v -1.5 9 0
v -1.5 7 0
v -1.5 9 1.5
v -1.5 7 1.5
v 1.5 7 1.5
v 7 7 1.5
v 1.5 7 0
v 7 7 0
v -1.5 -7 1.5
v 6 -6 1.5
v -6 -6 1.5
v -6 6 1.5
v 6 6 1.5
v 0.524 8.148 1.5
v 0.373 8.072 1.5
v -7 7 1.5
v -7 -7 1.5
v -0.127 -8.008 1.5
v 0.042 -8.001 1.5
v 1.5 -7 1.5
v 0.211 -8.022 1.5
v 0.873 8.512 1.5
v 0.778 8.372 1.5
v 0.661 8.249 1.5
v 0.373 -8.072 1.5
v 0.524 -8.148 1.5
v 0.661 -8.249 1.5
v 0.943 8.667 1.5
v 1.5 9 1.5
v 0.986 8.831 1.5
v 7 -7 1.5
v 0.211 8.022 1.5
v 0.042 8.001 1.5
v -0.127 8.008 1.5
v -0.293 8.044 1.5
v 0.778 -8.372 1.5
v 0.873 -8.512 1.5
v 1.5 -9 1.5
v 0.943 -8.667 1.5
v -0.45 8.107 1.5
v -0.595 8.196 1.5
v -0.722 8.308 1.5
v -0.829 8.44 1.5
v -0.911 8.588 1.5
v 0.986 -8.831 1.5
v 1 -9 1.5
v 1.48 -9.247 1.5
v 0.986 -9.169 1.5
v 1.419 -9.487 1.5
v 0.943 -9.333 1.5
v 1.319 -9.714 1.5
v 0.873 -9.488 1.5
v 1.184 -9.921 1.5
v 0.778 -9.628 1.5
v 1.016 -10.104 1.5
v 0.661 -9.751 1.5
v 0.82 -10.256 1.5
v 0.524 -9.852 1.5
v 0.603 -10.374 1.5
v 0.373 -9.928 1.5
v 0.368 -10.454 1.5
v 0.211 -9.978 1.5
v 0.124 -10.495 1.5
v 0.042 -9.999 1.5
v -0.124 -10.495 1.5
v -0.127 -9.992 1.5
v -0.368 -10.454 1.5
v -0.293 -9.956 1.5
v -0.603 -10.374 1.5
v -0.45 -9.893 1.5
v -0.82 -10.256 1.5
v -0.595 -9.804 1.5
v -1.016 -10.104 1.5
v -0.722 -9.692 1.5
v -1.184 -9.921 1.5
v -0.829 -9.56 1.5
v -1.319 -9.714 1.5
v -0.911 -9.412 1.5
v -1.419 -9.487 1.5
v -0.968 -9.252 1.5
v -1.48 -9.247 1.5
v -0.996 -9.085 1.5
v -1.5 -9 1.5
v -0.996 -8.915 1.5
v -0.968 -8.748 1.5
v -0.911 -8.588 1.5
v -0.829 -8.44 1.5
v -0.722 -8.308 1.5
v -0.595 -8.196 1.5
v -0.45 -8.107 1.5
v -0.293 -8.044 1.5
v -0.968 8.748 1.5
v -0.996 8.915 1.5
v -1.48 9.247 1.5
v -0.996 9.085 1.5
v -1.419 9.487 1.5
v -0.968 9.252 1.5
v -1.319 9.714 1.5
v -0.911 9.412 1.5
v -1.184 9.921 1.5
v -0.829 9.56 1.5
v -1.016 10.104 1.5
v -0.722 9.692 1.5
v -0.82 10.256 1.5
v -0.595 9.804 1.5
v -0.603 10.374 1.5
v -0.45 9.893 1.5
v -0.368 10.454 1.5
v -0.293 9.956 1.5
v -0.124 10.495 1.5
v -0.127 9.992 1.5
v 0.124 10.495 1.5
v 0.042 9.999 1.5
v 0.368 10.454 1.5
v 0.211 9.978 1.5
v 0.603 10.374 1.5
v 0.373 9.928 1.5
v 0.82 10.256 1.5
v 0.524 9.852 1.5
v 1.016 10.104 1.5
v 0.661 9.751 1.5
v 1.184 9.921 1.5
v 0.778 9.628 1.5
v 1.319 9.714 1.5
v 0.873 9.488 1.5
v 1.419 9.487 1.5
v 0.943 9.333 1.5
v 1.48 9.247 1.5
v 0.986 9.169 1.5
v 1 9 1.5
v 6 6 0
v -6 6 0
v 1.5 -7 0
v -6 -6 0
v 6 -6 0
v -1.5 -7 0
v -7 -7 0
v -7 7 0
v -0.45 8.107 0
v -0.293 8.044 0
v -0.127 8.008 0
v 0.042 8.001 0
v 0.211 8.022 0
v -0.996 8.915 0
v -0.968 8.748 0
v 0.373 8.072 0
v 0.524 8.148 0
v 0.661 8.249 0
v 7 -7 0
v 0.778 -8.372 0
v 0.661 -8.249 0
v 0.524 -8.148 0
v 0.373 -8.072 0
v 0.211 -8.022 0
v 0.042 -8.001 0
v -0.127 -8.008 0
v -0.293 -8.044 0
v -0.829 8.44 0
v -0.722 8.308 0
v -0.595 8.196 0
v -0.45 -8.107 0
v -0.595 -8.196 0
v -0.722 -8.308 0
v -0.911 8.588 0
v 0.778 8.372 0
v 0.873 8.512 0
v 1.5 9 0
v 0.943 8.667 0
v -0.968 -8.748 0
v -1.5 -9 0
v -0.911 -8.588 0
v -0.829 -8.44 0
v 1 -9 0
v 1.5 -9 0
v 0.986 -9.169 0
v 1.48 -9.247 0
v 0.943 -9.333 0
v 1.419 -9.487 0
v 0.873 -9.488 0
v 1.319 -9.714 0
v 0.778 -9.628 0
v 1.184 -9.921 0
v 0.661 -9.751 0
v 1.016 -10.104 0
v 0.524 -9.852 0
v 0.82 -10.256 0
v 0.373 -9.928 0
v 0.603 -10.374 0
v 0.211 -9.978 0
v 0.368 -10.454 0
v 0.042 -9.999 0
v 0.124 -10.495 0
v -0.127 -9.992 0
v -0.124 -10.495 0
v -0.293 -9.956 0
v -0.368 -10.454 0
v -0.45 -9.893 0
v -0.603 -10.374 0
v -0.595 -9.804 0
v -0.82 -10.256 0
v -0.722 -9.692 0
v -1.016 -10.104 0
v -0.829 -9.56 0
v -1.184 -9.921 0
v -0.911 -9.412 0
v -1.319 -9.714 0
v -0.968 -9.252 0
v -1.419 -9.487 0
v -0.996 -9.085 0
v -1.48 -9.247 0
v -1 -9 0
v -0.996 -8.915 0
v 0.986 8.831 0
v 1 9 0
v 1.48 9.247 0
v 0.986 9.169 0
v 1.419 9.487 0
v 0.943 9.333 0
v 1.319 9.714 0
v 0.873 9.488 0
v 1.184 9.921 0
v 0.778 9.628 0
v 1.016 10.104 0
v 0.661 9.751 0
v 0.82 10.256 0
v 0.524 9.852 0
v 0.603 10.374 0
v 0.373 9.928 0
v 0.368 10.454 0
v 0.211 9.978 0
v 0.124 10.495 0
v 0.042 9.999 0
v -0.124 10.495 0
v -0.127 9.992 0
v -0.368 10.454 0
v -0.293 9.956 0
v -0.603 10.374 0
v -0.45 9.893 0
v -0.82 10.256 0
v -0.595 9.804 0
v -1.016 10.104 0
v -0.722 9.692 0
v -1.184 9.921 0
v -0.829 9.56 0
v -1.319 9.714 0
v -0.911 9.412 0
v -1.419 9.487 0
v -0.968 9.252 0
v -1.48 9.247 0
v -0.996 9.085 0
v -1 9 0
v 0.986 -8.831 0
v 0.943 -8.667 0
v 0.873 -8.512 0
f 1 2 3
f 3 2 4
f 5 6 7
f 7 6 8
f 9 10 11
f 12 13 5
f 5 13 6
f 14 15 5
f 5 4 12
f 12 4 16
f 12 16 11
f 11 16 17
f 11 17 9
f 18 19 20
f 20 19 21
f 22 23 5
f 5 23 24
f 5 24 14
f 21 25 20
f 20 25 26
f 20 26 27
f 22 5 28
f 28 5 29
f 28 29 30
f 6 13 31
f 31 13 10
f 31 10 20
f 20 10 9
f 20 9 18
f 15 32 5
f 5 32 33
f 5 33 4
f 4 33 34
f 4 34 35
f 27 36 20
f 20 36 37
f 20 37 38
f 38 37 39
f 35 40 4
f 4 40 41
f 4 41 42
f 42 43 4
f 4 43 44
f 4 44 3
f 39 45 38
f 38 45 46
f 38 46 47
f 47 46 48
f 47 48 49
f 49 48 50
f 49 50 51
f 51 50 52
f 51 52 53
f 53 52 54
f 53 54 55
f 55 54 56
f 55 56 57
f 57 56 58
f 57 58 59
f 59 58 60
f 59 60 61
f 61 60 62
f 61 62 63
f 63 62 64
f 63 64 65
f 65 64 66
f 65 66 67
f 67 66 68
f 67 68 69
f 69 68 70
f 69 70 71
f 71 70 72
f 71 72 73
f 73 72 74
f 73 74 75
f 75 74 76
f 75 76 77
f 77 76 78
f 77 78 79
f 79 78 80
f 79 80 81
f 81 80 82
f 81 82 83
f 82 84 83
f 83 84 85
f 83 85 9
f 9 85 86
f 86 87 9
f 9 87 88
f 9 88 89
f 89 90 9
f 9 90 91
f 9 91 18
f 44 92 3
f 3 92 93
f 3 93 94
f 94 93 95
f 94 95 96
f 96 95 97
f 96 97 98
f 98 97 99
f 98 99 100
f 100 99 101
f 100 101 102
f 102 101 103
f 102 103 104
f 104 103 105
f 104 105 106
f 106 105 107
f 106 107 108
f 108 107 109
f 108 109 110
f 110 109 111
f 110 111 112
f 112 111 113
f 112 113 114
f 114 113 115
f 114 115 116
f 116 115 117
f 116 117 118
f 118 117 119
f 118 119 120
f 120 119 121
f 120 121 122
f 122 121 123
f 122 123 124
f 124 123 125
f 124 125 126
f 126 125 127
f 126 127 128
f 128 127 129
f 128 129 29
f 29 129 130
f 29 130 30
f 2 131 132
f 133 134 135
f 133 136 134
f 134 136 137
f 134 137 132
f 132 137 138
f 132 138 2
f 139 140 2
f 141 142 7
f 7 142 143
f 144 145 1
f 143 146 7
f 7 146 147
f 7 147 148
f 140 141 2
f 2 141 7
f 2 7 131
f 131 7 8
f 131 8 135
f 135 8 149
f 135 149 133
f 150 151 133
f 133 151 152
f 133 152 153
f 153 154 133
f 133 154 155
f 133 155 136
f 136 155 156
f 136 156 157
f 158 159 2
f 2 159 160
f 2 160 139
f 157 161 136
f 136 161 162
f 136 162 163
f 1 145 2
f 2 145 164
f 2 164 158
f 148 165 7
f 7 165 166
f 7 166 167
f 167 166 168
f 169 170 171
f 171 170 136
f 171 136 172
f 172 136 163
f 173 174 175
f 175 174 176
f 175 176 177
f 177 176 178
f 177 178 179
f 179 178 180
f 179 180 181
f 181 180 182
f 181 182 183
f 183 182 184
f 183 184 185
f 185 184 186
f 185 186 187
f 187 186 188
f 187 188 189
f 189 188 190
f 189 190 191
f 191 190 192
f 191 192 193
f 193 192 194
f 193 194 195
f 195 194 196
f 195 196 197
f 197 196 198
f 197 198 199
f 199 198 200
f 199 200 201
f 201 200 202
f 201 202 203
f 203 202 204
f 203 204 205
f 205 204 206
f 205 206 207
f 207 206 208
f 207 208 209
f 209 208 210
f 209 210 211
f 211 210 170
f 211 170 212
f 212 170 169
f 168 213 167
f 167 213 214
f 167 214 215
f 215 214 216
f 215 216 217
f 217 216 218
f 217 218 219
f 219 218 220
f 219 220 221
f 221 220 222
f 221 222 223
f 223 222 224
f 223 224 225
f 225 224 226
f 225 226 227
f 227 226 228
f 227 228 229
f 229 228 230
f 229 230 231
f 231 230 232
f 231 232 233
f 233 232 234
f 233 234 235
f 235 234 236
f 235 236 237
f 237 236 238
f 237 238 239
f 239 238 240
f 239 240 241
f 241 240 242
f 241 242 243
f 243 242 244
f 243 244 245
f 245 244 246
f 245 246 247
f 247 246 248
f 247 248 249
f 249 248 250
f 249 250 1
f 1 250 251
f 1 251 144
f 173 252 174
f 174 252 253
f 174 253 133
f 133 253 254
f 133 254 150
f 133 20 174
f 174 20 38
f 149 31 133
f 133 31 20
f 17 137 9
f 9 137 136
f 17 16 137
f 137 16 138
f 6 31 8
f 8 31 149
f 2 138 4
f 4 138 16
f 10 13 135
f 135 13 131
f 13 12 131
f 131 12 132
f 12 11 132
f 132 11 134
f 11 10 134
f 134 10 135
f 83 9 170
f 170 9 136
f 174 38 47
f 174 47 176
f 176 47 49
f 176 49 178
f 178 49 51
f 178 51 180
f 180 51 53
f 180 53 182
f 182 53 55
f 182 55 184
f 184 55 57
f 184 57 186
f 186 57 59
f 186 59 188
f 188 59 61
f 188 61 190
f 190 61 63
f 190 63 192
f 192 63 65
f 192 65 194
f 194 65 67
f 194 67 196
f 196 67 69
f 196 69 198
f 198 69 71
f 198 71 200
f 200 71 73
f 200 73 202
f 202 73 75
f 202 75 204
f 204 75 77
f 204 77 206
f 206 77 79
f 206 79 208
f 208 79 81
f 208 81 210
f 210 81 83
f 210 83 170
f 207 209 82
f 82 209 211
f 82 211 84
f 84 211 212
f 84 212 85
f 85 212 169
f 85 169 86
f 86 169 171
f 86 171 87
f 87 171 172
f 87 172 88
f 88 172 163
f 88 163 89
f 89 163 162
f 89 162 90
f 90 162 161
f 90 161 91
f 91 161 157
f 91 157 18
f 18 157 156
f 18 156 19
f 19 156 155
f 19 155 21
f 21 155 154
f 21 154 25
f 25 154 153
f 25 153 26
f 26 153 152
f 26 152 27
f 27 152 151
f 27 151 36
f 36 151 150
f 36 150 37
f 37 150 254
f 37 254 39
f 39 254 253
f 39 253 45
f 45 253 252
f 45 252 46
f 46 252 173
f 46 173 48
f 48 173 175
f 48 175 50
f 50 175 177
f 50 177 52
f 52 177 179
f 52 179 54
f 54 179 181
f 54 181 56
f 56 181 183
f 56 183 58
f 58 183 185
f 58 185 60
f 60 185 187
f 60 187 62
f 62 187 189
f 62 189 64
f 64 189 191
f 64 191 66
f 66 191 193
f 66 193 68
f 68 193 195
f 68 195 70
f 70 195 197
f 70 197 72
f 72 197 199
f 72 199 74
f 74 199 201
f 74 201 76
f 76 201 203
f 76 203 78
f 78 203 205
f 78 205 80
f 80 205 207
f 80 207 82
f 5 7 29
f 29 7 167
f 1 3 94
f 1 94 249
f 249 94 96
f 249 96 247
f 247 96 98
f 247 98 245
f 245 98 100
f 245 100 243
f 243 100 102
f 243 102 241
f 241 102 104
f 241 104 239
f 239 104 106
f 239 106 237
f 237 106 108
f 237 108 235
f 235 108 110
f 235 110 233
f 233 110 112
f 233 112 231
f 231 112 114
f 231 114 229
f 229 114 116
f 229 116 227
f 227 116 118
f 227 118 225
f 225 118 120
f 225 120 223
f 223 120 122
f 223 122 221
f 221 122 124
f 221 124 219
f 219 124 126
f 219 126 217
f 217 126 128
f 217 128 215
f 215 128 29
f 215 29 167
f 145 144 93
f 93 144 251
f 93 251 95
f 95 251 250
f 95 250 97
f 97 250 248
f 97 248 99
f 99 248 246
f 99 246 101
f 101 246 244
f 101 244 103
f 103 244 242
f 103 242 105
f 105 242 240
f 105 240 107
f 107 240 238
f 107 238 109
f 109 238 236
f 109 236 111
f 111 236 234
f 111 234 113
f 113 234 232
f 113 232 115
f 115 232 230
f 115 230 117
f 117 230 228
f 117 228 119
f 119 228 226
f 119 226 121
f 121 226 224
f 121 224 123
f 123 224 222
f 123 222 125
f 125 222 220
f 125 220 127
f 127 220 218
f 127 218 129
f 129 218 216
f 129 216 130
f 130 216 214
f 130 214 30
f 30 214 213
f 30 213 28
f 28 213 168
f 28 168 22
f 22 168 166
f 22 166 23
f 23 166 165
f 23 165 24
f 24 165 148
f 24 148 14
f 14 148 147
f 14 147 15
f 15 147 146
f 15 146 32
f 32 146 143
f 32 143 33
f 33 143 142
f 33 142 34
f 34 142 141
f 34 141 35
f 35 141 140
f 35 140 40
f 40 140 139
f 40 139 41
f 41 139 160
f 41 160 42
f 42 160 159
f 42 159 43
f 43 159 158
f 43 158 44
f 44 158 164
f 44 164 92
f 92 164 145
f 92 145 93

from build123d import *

# Parameters (mm, degrees)
SKETCH_6_W          = 14
SKETCH_6_H          = 14
SKETCH_6_W_2        = 12
SKETCH_6_H_2        = 12
EXTRUDE_3_DEPTH     = 1.5
SKETCH_7_W          = 3
SKETCH_7_H          = 1.5
EXTRUDE_4_DEPTH     = 3.5
CUT_EXTRUDE_3_DEPTH = 4
SKETCH_11_R         = 1
CUT_EXTRUDE_5_DEPTH = 4


with BuildPart() as part:
    # 草图6 → 凸台-拉伸3 (new body)
    with BuildSketch(Plane.XY):
        Rectangle(SKETCH_6_W, SKETCH_6_H)
        Rectangle(SKETCH_6_W_2, SKETCH_6_H_2, mode=Mode.SUBTRACT)
    extrude(amount=EXTRUDE_3_DEPTH)

    # 草图7 → 凸台-拉伸4 (add)
    with BuildSketch(Plane.XZ.offset(7)):
        with Locations((0, 0.75)):
            Rectangle(SKETCH_7_W, SKETCH_7_H)
    extrude_4 = extrude(amount=EXTRUDE_4_DEPTH)

    # 草图8 → 切除-拉伸3 (cut)
    with BuildSketch(Plane.XY.offset(1.5)):
        with BuildLine():
            ThreePointArc((0, -10.5), (-1.060660172, -10.060660172), (-1.5, -9))
            Line((-1.5, -9), (-1.5, -10.5))
            Line((-1.5, -10.5), (0, -10.5))
        make_face()
        with BuildLine():
            Line((1.5, -10.5), (1.5, -9))
            ThreePointArc((1.5, -9), (1.060660172, -10.060660172), (0, -10.5))
            Line((0, -10.5), (1.5, -10.5))
        make_face()
    cut_extrude_3 = extrude(amount=-CUT_EXTRUDE_3_DEPTH, mode=Mode.SUBTRACT)

    # 草图11 → 切除-拉伸5 (cut)
    with BuildSketch(Plane.XY.offset(1.5)):
        with Locations((0, -9)):
            Circle(SKETCH_11_R)
    cut_extrude_5 = extrude(amount=-CUT_EXTRUDE_5_DEPTH, mode=Mode.SUBTRACT)

    # 镜向1: 凸台-拉伸4, 切除-拉伸3, 切除-拉伸5 across plane
    add(extrude_4.mirror(Plane.ZX))
    add(cut_extrude_3.mirror(Plane.ZX), mode=Mode.SUBTRACT)
    add(cut_extrude_5.mirror(Plane.ZX), mode=Mode.SUBTRACT)


solid = part.part
